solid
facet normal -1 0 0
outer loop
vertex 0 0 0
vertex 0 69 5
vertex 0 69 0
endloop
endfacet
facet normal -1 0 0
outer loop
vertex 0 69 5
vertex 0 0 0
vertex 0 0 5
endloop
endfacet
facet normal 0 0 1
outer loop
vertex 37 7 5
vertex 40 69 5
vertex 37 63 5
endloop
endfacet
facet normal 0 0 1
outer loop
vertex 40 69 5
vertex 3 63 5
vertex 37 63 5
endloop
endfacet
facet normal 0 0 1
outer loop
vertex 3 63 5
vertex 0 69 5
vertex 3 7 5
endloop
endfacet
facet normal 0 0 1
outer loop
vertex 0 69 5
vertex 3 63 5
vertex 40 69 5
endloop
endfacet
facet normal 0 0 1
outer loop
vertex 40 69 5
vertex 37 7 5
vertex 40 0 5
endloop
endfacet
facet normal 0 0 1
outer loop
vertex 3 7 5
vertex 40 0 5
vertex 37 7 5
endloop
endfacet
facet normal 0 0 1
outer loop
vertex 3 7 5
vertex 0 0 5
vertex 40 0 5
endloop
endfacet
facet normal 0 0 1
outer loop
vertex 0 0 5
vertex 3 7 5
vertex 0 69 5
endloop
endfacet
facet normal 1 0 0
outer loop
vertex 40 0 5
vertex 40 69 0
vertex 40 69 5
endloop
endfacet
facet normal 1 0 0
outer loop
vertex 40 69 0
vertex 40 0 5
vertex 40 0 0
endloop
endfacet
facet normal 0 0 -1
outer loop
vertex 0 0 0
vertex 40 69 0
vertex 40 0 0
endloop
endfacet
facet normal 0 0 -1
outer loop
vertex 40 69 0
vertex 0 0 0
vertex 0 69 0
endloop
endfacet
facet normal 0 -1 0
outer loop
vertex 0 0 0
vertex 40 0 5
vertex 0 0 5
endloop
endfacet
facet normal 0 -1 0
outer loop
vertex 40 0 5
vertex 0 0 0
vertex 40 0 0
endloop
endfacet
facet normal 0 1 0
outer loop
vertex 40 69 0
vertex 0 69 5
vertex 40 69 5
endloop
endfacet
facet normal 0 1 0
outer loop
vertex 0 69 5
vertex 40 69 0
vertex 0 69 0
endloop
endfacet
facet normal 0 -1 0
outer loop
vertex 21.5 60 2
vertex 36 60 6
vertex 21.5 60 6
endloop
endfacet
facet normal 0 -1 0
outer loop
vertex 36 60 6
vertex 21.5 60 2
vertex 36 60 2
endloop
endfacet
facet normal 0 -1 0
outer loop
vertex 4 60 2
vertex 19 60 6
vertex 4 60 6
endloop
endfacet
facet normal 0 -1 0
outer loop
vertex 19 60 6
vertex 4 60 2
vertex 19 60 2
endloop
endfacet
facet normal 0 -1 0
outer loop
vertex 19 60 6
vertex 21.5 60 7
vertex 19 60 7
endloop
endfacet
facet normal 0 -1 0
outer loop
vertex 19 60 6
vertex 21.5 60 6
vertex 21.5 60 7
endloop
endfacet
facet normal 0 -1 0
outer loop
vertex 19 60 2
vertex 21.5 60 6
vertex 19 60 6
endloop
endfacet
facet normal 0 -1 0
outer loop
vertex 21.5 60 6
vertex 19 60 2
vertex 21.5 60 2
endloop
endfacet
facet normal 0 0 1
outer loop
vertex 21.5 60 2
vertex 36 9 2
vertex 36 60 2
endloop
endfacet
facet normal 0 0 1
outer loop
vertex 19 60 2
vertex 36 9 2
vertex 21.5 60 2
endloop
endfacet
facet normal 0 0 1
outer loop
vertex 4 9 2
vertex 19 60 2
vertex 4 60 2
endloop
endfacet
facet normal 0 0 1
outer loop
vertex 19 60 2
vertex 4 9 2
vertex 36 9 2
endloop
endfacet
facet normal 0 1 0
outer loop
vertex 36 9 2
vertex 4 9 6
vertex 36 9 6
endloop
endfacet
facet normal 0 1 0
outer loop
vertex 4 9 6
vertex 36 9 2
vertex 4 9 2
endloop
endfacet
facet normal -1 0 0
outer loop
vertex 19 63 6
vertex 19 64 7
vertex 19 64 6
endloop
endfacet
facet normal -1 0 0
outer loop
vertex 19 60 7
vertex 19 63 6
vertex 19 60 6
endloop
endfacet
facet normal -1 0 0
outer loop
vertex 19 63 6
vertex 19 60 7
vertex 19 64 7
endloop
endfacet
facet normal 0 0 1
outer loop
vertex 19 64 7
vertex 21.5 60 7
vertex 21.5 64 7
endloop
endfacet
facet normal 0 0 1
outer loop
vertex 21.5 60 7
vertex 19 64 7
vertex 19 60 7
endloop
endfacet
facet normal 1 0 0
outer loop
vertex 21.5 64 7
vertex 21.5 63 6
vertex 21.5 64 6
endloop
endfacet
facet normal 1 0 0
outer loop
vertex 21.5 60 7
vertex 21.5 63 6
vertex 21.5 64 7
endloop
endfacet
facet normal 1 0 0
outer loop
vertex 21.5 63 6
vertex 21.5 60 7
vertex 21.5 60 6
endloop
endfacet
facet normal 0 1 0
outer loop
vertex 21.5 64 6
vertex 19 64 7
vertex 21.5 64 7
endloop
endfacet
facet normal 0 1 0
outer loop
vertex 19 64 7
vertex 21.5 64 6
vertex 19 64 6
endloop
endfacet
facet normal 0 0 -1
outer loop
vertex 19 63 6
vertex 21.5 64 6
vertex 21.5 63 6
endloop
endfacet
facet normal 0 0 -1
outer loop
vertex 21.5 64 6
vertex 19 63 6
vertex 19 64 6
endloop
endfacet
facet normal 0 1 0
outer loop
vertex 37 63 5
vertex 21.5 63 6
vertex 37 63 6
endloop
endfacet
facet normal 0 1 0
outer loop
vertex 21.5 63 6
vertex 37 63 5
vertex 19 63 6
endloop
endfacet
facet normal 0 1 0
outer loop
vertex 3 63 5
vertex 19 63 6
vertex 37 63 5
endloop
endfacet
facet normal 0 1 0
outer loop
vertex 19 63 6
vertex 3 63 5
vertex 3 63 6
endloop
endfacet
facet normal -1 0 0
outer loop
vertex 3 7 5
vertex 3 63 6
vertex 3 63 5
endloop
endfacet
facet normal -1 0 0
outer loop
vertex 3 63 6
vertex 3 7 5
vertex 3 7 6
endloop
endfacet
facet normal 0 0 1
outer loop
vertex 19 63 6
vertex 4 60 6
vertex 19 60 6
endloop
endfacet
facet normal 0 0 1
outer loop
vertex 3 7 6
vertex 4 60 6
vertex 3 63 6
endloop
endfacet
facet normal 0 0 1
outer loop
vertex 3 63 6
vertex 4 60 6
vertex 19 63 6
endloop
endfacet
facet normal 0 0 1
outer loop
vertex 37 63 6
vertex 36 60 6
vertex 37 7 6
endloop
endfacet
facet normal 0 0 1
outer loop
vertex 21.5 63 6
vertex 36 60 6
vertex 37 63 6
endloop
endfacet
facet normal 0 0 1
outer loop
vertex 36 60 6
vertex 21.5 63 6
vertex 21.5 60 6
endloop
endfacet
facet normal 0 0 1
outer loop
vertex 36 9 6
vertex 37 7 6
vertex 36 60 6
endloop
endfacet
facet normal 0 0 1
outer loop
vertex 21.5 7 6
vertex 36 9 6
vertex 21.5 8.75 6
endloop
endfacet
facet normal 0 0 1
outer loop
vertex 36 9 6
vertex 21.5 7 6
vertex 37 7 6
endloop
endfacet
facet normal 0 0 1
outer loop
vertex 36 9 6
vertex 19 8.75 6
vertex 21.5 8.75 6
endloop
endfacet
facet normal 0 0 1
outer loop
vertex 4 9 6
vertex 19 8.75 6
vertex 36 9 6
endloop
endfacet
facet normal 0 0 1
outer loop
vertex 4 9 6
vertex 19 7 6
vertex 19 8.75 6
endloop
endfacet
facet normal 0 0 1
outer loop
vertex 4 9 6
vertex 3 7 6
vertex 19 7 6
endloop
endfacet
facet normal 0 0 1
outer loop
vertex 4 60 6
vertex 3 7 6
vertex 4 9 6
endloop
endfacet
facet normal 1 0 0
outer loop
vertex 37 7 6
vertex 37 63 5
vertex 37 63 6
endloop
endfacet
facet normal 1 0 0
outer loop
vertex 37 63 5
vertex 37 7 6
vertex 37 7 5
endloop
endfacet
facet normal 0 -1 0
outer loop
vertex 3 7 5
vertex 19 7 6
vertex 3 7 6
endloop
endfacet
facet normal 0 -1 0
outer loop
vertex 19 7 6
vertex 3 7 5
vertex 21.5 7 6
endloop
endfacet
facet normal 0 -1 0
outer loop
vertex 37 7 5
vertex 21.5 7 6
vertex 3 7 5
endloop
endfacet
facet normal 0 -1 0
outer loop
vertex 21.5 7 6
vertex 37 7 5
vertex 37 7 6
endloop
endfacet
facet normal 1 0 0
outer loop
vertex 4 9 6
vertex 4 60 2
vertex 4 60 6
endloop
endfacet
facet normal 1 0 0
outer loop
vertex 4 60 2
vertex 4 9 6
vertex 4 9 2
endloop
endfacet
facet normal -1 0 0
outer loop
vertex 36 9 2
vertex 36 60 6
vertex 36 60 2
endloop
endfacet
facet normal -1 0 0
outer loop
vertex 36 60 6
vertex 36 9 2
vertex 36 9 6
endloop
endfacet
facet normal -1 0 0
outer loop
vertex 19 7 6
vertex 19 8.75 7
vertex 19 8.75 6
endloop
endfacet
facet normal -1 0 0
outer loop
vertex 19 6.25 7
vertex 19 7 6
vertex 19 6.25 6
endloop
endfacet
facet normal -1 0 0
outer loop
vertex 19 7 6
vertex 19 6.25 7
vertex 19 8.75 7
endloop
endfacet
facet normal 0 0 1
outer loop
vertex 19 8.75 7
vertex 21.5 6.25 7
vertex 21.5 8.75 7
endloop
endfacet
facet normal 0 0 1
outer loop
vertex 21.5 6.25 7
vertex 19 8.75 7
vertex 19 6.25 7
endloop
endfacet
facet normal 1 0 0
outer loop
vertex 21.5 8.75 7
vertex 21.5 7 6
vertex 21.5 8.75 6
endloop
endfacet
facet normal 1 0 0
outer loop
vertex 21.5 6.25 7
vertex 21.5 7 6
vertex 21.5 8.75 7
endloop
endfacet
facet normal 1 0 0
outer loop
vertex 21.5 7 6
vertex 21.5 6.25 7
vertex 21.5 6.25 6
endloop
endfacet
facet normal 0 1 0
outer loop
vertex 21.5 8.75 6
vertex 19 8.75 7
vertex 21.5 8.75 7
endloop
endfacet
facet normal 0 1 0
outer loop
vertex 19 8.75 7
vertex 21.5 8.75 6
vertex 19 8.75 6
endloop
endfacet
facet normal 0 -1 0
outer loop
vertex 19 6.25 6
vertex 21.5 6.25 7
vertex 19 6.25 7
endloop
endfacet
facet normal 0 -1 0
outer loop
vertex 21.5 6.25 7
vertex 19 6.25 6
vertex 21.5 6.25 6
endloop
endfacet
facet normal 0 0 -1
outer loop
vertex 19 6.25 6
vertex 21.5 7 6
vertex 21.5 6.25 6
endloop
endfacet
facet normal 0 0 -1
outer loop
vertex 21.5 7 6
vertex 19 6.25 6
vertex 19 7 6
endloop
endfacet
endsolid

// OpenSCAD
/*
    TOS Version 2 Bottom
    

*/

//Body
difference() {
    cube([40,69,5]);
    translate([3.5,9,2]) {
            cube([33, 51, 4]);
    }    
}

// Clasp front
difference() {
    translate([19.0,6.25,2]) {
        cube([2.5,2.5,5]);
    };
    translate([19.0,6,0]) {
        cube([5,1,6]);
    }    
}

// Clasp back
difference() {
    translate([19.0,60.0,2]) {
        cube([2.5,4,5]);
    };
    translate([19.0,63,0]) {
        cube([5,1,6]);
    }    
}

// Clasp left
/*
difference() {
    translate([2.0,32.5,0]) {
        cube([2.5,4,5]);
    };
    translate([0,32.5,-1]) {
        cube([2.5,4,5]);
    }    
}
*/




//Lip
difference() {
    translate([3,7,2]) {
            cube([34, 56, 4]);
    }

    translate([4,9,2]) {
            cube([32, 51, 4]);
    }
}
